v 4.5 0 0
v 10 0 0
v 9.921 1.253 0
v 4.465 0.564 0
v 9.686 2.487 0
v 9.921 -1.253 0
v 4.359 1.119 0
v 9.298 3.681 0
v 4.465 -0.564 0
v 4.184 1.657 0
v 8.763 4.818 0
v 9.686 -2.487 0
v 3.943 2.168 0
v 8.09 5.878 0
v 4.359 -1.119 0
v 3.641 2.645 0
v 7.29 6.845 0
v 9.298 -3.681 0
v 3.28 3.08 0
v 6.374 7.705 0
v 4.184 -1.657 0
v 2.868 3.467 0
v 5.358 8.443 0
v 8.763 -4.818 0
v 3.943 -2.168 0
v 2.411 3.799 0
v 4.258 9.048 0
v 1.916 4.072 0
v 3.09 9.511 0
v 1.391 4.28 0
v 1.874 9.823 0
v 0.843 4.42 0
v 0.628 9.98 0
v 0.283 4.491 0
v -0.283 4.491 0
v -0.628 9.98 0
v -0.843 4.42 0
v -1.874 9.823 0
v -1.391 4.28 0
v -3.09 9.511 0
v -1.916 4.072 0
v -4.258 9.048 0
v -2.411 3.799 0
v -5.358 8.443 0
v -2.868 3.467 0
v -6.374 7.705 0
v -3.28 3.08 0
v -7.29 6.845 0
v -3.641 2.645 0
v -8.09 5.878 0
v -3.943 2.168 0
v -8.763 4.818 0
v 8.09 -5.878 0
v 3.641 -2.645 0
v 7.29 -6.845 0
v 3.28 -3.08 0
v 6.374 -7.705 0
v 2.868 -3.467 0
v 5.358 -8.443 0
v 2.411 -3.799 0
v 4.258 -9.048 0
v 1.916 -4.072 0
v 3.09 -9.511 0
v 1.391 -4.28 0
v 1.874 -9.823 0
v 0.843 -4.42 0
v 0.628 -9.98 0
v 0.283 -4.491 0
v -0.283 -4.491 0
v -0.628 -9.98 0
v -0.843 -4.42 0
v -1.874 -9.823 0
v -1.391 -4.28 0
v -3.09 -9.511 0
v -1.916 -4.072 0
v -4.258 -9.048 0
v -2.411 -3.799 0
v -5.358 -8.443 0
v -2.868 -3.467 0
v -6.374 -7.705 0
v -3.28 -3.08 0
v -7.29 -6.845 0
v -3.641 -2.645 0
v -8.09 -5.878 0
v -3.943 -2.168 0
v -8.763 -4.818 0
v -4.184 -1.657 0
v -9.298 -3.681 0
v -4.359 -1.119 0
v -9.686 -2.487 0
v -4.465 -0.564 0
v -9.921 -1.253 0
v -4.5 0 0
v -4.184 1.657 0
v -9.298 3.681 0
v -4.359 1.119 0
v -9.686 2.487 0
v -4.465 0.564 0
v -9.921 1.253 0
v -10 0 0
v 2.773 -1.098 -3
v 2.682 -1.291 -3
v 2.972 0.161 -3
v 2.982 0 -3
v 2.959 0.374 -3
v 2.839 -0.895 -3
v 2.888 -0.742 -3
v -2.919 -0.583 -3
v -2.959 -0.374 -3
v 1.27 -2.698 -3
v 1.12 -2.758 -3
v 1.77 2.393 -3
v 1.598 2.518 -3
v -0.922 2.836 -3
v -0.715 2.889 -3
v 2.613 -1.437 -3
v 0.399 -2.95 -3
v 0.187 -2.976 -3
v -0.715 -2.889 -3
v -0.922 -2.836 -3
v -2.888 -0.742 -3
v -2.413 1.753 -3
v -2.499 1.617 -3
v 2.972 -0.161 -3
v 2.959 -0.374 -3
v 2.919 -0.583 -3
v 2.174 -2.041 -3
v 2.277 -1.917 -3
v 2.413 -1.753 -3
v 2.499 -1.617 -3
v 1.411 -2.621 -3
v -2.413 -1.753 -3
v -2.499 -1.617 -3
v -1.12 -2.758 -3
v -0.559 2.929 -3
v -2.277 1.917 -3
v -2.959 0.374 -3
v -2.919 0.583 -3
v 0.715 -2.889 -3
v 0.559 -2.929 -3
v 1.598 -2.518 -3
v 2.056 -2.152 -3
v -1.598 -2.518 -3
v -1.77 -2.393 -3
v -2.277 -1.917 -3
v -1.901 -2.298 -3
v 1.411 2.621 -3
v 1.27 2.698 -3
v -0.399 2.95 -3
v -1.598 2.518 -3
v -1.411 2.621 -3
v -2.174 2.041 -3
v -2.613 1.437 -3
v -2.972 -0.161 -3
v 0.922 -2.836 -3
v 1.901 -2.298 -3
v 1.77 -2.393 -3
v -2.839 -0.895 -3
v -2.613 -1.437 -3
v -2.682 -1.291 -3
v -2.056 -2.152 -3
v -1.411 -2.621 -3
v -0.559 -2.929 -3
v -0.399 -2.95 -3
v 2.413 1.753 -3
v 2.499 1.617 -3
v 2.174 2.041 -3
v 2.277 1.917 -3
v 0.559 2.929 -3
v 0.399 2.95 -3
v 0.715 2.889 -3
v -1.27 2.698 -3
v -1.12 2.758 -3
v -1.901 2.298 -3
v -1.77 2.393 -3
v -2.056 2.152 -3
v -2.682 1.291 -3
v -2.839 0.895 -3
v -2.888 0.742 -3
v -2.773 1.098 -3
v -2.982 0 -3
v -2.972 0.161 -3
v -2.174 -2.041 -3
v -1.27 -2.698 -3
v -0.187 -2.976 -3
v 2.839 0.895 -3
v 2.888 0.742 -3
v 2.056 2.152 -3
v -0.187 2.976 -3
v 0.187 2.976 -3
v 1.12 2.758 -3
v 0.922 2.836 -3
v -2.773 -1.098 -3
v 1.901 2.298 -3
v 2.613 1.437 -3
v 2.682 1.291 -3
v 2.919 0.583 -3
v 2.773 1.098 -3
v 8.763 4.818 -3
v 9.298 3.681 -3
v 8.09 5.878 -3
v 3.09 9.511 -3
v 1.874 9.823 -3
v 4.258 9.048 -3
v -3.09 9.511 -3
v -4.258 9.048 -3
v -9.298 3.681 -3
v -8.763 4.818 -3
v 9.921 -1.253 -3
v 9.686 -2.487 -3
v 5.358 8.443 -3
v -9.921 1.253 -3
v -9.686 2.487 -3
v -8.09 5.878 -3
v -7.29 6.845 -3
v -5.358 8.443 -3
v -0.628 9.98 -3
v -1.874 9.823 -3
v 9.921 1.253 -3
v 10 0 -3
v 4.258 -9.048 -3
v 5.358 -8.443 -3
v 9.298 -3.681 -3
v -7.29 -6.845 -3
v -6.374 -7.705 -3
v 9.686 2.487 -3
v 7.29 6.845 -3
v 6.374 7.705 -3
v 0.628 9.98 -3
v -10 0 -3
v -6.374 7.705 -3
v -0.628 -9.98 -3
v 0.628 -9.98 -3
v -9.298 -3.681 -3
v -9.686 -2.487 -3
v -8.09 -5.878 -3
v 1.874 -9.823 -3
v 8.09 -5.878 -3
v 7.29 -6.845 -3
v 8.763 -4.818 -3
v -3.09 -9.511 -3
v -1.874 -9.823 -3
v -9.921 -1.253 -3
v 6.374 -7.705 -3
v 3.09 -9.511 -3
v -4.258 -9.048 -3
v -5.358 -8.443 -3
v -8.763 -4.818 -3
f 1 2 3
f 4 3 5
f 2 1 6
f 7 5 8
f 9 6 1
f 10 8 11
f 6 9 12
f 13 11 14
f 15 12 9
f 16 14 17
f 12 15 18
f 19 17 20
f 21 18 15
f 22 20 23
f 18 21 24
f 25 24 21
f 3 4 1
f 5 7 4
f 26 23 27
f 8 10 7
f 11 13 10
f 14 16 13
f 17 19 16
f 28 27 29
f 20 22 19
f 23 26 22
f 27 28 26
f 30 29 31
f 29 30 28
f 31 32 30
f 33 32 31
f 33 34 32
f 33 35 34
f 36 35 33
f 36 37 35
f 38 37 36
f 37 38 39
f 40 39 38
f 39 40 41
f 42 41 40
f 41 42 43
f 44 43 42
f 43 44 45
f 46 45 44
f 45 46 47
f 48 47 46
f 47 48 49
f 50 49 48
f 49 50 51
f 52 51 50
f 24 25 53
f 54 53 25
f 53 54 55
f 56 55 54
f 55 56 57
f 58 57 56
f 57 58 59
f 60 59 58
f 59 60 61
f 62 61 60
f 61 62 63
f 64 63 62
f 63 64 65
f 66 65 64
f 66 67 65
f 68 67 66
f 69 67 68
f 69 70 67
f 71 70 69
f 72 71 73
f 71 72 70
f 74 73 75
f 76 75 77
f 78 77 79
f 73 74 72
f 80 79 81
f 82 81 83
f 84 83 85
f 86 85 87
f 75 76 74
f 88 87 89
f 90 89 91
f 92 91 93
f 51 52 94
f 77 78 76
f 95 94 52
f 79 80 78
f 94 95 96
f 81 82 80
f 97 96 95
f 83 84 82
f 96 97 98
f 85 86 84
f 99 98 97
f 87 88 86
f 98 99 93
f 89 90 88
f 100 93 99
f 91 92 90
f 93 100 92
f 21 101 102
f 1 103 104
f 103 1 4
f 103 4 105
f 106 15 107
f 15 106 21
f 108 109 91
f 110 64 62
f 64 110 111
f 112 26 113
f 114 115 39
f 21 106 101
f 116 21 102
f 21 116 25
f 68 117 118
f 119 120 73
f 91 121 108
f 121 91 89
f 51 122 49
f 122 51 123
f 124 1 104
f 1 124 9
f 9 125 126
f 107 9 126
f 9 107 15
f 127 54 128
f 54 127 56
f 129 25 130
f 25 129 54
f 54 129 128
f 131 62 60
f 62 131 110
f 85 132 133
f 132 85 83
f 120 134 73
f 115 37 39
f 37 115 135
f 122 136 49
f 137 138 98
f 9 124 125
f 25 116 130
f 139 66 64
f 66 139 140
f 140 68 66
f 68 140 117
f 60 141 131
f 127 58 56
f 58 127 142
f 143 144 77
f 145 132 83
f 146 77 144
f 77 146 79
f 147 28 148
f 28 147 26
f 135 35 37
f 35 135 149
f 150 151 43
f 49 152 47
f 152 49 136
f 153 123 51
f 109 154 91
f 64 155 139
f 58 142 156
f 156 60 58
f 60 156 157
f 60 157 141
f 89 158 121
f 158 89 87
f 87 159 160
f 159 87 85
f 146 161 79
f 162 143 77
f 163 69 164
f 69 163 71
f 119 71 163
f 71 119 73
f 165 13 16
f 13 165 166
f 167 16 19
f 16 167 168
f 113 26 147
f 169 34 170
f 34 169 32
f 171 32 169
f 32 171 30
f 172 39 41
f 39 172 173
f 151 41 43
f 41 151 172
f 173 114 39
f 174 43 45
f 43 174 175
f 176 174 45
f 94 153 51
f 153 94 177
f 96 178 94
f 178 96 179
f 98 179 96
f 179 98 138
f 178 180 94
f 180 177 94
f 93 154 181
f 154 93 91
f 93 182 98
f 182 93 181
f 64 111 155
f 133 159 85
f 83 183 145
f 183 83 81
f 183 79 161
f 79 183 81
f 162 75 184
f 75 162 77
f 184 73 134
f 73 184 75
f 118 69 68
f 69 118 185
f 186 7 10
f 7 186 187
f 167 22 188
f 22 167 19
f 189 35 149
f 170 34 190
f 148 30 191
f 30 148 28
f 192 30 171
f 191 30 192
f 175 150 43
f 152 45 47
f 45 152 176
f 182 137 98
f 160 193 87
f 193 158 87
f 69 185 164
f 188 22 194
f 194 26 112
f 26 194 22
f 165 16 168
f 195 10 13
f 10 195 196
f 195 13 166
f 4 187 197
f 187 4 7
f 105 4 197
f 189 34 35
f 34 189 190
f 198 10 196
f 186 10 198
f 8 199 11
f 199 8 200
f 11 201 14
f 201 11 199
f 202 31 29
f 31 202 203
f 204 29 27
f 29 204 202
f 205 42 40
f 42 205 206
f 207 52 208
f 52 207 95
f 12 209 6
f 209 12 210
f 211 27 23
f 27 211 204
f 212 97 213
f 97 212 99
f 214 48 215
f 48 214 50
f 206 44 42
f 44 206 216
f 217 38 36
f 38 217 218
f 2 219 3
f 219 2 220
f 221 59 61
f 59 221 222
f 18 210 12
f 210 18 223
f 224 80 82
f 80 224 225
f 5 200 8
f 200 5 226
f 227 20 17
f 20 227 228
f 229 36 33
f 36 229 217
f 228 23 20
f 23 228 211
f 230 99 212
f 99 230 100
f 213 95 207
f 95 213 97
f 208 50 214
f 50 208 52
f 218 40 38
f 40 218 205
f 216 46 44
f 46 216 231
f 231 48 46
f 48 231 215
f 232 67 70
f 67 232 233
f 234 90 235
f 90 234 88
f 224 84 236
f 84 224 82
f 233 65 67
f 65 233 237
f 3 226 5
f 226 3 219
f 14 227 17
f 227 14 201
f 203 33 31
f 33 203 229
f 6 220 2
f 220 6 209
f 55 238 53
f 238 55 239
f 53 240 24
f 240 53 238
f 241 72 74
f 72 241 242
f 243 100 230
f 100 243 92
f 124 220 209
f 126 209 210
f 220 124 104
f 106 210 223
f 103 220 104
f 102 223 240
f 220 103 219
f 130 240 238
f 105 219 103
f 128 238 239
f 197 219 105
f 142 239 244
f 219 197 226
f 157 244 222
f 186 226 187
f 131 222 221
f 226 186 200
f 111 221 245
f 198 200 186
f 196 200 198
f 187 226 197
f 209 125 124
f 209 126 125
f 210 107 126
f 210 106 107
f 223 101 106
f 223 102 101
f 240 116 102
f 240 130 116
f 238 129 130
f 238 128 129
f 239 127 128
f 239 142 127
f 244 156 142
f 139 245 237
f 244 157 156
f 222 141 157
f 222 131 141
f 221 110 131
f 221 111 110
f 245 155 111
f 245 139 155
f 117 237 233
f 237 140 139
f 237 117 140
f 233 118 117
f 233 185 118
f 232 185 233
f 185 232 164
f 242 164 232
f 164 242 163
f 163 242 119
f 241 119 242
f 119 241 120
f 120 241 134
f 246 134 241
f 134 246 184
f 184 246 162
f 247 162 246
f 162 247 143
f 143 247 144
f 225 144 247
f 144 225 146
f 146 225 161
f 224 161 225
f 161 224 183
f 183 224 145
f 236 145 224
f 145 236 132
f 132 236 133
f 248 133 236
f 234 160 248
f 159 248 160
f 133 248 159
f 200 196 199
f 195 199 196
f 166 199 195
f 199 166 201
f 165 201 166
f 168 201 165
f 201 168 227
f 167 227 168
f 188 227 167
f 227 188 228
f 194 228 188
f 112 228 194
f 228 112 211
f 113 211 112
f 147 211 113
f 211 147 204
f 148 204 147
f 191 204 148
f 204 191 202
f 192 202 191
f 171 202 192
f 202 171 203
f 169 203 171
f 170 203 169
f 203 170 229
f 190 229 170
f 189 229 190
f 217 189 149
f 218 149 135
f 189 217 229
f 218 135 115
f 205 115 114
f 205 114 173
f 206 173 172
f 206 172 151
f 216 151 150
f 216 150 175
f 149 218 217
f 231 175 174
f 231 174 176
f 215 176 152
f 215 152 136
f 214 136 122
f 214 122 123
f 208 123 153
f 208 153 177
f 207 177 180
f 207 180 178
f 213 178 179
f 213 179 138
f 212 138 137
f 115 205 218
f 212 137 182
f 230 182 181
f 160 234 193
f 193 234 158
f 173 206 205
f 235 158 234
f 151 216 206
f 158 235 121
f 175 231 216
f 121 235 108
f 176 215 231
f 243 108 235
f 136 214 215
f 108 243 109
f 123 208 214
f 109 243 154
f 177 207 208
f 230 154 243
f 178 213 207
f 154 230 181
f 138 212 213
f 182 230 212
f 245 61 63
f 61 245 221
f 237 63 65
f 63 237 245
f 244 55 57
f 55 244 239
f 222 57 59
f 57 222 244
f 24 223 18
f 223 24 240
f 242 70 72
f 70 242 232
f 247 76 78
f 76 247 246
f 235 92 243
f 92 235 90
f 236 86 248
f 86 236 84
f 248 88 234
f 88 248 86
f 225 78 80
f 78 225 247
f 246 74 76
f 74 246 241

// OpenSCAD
$fn = 50;


difference() {
	union() {
		translate(v = [0, 0, -3.0000000000]) {
			cylinder(h = 3, r = 10.0000000000);
		}
		cylinder(h = 0, r = 20.0000000000);
	}
	union() {
		translate(v = [0, 0, 0]) {
			rotate(a = [0, 0, 0]) {
				difference() {
					union() {
						#translate(v = [0, 0, -3.0000000000]) {
							cylinder(h = 3, r = 2.2500000000);
						}
						#translate(v = [0, 0, -4.2000000000]) {
							cylinder(h = 4.2000000000, r = 10.0000000000, r1 = 2.3750000000, r2 = 4.5000000000);
						}
						#translate(v = [0, 0, -3.0000000000]) {
							cylinder(h = 3, r = 2.3750000000);
						}
						#translate(v = [0, 0, -3.0000000000]) {
							cylinder(h = 3, r = 2.2500000000);
						}
					}
					union();
				}
			}
		}
	}
}
